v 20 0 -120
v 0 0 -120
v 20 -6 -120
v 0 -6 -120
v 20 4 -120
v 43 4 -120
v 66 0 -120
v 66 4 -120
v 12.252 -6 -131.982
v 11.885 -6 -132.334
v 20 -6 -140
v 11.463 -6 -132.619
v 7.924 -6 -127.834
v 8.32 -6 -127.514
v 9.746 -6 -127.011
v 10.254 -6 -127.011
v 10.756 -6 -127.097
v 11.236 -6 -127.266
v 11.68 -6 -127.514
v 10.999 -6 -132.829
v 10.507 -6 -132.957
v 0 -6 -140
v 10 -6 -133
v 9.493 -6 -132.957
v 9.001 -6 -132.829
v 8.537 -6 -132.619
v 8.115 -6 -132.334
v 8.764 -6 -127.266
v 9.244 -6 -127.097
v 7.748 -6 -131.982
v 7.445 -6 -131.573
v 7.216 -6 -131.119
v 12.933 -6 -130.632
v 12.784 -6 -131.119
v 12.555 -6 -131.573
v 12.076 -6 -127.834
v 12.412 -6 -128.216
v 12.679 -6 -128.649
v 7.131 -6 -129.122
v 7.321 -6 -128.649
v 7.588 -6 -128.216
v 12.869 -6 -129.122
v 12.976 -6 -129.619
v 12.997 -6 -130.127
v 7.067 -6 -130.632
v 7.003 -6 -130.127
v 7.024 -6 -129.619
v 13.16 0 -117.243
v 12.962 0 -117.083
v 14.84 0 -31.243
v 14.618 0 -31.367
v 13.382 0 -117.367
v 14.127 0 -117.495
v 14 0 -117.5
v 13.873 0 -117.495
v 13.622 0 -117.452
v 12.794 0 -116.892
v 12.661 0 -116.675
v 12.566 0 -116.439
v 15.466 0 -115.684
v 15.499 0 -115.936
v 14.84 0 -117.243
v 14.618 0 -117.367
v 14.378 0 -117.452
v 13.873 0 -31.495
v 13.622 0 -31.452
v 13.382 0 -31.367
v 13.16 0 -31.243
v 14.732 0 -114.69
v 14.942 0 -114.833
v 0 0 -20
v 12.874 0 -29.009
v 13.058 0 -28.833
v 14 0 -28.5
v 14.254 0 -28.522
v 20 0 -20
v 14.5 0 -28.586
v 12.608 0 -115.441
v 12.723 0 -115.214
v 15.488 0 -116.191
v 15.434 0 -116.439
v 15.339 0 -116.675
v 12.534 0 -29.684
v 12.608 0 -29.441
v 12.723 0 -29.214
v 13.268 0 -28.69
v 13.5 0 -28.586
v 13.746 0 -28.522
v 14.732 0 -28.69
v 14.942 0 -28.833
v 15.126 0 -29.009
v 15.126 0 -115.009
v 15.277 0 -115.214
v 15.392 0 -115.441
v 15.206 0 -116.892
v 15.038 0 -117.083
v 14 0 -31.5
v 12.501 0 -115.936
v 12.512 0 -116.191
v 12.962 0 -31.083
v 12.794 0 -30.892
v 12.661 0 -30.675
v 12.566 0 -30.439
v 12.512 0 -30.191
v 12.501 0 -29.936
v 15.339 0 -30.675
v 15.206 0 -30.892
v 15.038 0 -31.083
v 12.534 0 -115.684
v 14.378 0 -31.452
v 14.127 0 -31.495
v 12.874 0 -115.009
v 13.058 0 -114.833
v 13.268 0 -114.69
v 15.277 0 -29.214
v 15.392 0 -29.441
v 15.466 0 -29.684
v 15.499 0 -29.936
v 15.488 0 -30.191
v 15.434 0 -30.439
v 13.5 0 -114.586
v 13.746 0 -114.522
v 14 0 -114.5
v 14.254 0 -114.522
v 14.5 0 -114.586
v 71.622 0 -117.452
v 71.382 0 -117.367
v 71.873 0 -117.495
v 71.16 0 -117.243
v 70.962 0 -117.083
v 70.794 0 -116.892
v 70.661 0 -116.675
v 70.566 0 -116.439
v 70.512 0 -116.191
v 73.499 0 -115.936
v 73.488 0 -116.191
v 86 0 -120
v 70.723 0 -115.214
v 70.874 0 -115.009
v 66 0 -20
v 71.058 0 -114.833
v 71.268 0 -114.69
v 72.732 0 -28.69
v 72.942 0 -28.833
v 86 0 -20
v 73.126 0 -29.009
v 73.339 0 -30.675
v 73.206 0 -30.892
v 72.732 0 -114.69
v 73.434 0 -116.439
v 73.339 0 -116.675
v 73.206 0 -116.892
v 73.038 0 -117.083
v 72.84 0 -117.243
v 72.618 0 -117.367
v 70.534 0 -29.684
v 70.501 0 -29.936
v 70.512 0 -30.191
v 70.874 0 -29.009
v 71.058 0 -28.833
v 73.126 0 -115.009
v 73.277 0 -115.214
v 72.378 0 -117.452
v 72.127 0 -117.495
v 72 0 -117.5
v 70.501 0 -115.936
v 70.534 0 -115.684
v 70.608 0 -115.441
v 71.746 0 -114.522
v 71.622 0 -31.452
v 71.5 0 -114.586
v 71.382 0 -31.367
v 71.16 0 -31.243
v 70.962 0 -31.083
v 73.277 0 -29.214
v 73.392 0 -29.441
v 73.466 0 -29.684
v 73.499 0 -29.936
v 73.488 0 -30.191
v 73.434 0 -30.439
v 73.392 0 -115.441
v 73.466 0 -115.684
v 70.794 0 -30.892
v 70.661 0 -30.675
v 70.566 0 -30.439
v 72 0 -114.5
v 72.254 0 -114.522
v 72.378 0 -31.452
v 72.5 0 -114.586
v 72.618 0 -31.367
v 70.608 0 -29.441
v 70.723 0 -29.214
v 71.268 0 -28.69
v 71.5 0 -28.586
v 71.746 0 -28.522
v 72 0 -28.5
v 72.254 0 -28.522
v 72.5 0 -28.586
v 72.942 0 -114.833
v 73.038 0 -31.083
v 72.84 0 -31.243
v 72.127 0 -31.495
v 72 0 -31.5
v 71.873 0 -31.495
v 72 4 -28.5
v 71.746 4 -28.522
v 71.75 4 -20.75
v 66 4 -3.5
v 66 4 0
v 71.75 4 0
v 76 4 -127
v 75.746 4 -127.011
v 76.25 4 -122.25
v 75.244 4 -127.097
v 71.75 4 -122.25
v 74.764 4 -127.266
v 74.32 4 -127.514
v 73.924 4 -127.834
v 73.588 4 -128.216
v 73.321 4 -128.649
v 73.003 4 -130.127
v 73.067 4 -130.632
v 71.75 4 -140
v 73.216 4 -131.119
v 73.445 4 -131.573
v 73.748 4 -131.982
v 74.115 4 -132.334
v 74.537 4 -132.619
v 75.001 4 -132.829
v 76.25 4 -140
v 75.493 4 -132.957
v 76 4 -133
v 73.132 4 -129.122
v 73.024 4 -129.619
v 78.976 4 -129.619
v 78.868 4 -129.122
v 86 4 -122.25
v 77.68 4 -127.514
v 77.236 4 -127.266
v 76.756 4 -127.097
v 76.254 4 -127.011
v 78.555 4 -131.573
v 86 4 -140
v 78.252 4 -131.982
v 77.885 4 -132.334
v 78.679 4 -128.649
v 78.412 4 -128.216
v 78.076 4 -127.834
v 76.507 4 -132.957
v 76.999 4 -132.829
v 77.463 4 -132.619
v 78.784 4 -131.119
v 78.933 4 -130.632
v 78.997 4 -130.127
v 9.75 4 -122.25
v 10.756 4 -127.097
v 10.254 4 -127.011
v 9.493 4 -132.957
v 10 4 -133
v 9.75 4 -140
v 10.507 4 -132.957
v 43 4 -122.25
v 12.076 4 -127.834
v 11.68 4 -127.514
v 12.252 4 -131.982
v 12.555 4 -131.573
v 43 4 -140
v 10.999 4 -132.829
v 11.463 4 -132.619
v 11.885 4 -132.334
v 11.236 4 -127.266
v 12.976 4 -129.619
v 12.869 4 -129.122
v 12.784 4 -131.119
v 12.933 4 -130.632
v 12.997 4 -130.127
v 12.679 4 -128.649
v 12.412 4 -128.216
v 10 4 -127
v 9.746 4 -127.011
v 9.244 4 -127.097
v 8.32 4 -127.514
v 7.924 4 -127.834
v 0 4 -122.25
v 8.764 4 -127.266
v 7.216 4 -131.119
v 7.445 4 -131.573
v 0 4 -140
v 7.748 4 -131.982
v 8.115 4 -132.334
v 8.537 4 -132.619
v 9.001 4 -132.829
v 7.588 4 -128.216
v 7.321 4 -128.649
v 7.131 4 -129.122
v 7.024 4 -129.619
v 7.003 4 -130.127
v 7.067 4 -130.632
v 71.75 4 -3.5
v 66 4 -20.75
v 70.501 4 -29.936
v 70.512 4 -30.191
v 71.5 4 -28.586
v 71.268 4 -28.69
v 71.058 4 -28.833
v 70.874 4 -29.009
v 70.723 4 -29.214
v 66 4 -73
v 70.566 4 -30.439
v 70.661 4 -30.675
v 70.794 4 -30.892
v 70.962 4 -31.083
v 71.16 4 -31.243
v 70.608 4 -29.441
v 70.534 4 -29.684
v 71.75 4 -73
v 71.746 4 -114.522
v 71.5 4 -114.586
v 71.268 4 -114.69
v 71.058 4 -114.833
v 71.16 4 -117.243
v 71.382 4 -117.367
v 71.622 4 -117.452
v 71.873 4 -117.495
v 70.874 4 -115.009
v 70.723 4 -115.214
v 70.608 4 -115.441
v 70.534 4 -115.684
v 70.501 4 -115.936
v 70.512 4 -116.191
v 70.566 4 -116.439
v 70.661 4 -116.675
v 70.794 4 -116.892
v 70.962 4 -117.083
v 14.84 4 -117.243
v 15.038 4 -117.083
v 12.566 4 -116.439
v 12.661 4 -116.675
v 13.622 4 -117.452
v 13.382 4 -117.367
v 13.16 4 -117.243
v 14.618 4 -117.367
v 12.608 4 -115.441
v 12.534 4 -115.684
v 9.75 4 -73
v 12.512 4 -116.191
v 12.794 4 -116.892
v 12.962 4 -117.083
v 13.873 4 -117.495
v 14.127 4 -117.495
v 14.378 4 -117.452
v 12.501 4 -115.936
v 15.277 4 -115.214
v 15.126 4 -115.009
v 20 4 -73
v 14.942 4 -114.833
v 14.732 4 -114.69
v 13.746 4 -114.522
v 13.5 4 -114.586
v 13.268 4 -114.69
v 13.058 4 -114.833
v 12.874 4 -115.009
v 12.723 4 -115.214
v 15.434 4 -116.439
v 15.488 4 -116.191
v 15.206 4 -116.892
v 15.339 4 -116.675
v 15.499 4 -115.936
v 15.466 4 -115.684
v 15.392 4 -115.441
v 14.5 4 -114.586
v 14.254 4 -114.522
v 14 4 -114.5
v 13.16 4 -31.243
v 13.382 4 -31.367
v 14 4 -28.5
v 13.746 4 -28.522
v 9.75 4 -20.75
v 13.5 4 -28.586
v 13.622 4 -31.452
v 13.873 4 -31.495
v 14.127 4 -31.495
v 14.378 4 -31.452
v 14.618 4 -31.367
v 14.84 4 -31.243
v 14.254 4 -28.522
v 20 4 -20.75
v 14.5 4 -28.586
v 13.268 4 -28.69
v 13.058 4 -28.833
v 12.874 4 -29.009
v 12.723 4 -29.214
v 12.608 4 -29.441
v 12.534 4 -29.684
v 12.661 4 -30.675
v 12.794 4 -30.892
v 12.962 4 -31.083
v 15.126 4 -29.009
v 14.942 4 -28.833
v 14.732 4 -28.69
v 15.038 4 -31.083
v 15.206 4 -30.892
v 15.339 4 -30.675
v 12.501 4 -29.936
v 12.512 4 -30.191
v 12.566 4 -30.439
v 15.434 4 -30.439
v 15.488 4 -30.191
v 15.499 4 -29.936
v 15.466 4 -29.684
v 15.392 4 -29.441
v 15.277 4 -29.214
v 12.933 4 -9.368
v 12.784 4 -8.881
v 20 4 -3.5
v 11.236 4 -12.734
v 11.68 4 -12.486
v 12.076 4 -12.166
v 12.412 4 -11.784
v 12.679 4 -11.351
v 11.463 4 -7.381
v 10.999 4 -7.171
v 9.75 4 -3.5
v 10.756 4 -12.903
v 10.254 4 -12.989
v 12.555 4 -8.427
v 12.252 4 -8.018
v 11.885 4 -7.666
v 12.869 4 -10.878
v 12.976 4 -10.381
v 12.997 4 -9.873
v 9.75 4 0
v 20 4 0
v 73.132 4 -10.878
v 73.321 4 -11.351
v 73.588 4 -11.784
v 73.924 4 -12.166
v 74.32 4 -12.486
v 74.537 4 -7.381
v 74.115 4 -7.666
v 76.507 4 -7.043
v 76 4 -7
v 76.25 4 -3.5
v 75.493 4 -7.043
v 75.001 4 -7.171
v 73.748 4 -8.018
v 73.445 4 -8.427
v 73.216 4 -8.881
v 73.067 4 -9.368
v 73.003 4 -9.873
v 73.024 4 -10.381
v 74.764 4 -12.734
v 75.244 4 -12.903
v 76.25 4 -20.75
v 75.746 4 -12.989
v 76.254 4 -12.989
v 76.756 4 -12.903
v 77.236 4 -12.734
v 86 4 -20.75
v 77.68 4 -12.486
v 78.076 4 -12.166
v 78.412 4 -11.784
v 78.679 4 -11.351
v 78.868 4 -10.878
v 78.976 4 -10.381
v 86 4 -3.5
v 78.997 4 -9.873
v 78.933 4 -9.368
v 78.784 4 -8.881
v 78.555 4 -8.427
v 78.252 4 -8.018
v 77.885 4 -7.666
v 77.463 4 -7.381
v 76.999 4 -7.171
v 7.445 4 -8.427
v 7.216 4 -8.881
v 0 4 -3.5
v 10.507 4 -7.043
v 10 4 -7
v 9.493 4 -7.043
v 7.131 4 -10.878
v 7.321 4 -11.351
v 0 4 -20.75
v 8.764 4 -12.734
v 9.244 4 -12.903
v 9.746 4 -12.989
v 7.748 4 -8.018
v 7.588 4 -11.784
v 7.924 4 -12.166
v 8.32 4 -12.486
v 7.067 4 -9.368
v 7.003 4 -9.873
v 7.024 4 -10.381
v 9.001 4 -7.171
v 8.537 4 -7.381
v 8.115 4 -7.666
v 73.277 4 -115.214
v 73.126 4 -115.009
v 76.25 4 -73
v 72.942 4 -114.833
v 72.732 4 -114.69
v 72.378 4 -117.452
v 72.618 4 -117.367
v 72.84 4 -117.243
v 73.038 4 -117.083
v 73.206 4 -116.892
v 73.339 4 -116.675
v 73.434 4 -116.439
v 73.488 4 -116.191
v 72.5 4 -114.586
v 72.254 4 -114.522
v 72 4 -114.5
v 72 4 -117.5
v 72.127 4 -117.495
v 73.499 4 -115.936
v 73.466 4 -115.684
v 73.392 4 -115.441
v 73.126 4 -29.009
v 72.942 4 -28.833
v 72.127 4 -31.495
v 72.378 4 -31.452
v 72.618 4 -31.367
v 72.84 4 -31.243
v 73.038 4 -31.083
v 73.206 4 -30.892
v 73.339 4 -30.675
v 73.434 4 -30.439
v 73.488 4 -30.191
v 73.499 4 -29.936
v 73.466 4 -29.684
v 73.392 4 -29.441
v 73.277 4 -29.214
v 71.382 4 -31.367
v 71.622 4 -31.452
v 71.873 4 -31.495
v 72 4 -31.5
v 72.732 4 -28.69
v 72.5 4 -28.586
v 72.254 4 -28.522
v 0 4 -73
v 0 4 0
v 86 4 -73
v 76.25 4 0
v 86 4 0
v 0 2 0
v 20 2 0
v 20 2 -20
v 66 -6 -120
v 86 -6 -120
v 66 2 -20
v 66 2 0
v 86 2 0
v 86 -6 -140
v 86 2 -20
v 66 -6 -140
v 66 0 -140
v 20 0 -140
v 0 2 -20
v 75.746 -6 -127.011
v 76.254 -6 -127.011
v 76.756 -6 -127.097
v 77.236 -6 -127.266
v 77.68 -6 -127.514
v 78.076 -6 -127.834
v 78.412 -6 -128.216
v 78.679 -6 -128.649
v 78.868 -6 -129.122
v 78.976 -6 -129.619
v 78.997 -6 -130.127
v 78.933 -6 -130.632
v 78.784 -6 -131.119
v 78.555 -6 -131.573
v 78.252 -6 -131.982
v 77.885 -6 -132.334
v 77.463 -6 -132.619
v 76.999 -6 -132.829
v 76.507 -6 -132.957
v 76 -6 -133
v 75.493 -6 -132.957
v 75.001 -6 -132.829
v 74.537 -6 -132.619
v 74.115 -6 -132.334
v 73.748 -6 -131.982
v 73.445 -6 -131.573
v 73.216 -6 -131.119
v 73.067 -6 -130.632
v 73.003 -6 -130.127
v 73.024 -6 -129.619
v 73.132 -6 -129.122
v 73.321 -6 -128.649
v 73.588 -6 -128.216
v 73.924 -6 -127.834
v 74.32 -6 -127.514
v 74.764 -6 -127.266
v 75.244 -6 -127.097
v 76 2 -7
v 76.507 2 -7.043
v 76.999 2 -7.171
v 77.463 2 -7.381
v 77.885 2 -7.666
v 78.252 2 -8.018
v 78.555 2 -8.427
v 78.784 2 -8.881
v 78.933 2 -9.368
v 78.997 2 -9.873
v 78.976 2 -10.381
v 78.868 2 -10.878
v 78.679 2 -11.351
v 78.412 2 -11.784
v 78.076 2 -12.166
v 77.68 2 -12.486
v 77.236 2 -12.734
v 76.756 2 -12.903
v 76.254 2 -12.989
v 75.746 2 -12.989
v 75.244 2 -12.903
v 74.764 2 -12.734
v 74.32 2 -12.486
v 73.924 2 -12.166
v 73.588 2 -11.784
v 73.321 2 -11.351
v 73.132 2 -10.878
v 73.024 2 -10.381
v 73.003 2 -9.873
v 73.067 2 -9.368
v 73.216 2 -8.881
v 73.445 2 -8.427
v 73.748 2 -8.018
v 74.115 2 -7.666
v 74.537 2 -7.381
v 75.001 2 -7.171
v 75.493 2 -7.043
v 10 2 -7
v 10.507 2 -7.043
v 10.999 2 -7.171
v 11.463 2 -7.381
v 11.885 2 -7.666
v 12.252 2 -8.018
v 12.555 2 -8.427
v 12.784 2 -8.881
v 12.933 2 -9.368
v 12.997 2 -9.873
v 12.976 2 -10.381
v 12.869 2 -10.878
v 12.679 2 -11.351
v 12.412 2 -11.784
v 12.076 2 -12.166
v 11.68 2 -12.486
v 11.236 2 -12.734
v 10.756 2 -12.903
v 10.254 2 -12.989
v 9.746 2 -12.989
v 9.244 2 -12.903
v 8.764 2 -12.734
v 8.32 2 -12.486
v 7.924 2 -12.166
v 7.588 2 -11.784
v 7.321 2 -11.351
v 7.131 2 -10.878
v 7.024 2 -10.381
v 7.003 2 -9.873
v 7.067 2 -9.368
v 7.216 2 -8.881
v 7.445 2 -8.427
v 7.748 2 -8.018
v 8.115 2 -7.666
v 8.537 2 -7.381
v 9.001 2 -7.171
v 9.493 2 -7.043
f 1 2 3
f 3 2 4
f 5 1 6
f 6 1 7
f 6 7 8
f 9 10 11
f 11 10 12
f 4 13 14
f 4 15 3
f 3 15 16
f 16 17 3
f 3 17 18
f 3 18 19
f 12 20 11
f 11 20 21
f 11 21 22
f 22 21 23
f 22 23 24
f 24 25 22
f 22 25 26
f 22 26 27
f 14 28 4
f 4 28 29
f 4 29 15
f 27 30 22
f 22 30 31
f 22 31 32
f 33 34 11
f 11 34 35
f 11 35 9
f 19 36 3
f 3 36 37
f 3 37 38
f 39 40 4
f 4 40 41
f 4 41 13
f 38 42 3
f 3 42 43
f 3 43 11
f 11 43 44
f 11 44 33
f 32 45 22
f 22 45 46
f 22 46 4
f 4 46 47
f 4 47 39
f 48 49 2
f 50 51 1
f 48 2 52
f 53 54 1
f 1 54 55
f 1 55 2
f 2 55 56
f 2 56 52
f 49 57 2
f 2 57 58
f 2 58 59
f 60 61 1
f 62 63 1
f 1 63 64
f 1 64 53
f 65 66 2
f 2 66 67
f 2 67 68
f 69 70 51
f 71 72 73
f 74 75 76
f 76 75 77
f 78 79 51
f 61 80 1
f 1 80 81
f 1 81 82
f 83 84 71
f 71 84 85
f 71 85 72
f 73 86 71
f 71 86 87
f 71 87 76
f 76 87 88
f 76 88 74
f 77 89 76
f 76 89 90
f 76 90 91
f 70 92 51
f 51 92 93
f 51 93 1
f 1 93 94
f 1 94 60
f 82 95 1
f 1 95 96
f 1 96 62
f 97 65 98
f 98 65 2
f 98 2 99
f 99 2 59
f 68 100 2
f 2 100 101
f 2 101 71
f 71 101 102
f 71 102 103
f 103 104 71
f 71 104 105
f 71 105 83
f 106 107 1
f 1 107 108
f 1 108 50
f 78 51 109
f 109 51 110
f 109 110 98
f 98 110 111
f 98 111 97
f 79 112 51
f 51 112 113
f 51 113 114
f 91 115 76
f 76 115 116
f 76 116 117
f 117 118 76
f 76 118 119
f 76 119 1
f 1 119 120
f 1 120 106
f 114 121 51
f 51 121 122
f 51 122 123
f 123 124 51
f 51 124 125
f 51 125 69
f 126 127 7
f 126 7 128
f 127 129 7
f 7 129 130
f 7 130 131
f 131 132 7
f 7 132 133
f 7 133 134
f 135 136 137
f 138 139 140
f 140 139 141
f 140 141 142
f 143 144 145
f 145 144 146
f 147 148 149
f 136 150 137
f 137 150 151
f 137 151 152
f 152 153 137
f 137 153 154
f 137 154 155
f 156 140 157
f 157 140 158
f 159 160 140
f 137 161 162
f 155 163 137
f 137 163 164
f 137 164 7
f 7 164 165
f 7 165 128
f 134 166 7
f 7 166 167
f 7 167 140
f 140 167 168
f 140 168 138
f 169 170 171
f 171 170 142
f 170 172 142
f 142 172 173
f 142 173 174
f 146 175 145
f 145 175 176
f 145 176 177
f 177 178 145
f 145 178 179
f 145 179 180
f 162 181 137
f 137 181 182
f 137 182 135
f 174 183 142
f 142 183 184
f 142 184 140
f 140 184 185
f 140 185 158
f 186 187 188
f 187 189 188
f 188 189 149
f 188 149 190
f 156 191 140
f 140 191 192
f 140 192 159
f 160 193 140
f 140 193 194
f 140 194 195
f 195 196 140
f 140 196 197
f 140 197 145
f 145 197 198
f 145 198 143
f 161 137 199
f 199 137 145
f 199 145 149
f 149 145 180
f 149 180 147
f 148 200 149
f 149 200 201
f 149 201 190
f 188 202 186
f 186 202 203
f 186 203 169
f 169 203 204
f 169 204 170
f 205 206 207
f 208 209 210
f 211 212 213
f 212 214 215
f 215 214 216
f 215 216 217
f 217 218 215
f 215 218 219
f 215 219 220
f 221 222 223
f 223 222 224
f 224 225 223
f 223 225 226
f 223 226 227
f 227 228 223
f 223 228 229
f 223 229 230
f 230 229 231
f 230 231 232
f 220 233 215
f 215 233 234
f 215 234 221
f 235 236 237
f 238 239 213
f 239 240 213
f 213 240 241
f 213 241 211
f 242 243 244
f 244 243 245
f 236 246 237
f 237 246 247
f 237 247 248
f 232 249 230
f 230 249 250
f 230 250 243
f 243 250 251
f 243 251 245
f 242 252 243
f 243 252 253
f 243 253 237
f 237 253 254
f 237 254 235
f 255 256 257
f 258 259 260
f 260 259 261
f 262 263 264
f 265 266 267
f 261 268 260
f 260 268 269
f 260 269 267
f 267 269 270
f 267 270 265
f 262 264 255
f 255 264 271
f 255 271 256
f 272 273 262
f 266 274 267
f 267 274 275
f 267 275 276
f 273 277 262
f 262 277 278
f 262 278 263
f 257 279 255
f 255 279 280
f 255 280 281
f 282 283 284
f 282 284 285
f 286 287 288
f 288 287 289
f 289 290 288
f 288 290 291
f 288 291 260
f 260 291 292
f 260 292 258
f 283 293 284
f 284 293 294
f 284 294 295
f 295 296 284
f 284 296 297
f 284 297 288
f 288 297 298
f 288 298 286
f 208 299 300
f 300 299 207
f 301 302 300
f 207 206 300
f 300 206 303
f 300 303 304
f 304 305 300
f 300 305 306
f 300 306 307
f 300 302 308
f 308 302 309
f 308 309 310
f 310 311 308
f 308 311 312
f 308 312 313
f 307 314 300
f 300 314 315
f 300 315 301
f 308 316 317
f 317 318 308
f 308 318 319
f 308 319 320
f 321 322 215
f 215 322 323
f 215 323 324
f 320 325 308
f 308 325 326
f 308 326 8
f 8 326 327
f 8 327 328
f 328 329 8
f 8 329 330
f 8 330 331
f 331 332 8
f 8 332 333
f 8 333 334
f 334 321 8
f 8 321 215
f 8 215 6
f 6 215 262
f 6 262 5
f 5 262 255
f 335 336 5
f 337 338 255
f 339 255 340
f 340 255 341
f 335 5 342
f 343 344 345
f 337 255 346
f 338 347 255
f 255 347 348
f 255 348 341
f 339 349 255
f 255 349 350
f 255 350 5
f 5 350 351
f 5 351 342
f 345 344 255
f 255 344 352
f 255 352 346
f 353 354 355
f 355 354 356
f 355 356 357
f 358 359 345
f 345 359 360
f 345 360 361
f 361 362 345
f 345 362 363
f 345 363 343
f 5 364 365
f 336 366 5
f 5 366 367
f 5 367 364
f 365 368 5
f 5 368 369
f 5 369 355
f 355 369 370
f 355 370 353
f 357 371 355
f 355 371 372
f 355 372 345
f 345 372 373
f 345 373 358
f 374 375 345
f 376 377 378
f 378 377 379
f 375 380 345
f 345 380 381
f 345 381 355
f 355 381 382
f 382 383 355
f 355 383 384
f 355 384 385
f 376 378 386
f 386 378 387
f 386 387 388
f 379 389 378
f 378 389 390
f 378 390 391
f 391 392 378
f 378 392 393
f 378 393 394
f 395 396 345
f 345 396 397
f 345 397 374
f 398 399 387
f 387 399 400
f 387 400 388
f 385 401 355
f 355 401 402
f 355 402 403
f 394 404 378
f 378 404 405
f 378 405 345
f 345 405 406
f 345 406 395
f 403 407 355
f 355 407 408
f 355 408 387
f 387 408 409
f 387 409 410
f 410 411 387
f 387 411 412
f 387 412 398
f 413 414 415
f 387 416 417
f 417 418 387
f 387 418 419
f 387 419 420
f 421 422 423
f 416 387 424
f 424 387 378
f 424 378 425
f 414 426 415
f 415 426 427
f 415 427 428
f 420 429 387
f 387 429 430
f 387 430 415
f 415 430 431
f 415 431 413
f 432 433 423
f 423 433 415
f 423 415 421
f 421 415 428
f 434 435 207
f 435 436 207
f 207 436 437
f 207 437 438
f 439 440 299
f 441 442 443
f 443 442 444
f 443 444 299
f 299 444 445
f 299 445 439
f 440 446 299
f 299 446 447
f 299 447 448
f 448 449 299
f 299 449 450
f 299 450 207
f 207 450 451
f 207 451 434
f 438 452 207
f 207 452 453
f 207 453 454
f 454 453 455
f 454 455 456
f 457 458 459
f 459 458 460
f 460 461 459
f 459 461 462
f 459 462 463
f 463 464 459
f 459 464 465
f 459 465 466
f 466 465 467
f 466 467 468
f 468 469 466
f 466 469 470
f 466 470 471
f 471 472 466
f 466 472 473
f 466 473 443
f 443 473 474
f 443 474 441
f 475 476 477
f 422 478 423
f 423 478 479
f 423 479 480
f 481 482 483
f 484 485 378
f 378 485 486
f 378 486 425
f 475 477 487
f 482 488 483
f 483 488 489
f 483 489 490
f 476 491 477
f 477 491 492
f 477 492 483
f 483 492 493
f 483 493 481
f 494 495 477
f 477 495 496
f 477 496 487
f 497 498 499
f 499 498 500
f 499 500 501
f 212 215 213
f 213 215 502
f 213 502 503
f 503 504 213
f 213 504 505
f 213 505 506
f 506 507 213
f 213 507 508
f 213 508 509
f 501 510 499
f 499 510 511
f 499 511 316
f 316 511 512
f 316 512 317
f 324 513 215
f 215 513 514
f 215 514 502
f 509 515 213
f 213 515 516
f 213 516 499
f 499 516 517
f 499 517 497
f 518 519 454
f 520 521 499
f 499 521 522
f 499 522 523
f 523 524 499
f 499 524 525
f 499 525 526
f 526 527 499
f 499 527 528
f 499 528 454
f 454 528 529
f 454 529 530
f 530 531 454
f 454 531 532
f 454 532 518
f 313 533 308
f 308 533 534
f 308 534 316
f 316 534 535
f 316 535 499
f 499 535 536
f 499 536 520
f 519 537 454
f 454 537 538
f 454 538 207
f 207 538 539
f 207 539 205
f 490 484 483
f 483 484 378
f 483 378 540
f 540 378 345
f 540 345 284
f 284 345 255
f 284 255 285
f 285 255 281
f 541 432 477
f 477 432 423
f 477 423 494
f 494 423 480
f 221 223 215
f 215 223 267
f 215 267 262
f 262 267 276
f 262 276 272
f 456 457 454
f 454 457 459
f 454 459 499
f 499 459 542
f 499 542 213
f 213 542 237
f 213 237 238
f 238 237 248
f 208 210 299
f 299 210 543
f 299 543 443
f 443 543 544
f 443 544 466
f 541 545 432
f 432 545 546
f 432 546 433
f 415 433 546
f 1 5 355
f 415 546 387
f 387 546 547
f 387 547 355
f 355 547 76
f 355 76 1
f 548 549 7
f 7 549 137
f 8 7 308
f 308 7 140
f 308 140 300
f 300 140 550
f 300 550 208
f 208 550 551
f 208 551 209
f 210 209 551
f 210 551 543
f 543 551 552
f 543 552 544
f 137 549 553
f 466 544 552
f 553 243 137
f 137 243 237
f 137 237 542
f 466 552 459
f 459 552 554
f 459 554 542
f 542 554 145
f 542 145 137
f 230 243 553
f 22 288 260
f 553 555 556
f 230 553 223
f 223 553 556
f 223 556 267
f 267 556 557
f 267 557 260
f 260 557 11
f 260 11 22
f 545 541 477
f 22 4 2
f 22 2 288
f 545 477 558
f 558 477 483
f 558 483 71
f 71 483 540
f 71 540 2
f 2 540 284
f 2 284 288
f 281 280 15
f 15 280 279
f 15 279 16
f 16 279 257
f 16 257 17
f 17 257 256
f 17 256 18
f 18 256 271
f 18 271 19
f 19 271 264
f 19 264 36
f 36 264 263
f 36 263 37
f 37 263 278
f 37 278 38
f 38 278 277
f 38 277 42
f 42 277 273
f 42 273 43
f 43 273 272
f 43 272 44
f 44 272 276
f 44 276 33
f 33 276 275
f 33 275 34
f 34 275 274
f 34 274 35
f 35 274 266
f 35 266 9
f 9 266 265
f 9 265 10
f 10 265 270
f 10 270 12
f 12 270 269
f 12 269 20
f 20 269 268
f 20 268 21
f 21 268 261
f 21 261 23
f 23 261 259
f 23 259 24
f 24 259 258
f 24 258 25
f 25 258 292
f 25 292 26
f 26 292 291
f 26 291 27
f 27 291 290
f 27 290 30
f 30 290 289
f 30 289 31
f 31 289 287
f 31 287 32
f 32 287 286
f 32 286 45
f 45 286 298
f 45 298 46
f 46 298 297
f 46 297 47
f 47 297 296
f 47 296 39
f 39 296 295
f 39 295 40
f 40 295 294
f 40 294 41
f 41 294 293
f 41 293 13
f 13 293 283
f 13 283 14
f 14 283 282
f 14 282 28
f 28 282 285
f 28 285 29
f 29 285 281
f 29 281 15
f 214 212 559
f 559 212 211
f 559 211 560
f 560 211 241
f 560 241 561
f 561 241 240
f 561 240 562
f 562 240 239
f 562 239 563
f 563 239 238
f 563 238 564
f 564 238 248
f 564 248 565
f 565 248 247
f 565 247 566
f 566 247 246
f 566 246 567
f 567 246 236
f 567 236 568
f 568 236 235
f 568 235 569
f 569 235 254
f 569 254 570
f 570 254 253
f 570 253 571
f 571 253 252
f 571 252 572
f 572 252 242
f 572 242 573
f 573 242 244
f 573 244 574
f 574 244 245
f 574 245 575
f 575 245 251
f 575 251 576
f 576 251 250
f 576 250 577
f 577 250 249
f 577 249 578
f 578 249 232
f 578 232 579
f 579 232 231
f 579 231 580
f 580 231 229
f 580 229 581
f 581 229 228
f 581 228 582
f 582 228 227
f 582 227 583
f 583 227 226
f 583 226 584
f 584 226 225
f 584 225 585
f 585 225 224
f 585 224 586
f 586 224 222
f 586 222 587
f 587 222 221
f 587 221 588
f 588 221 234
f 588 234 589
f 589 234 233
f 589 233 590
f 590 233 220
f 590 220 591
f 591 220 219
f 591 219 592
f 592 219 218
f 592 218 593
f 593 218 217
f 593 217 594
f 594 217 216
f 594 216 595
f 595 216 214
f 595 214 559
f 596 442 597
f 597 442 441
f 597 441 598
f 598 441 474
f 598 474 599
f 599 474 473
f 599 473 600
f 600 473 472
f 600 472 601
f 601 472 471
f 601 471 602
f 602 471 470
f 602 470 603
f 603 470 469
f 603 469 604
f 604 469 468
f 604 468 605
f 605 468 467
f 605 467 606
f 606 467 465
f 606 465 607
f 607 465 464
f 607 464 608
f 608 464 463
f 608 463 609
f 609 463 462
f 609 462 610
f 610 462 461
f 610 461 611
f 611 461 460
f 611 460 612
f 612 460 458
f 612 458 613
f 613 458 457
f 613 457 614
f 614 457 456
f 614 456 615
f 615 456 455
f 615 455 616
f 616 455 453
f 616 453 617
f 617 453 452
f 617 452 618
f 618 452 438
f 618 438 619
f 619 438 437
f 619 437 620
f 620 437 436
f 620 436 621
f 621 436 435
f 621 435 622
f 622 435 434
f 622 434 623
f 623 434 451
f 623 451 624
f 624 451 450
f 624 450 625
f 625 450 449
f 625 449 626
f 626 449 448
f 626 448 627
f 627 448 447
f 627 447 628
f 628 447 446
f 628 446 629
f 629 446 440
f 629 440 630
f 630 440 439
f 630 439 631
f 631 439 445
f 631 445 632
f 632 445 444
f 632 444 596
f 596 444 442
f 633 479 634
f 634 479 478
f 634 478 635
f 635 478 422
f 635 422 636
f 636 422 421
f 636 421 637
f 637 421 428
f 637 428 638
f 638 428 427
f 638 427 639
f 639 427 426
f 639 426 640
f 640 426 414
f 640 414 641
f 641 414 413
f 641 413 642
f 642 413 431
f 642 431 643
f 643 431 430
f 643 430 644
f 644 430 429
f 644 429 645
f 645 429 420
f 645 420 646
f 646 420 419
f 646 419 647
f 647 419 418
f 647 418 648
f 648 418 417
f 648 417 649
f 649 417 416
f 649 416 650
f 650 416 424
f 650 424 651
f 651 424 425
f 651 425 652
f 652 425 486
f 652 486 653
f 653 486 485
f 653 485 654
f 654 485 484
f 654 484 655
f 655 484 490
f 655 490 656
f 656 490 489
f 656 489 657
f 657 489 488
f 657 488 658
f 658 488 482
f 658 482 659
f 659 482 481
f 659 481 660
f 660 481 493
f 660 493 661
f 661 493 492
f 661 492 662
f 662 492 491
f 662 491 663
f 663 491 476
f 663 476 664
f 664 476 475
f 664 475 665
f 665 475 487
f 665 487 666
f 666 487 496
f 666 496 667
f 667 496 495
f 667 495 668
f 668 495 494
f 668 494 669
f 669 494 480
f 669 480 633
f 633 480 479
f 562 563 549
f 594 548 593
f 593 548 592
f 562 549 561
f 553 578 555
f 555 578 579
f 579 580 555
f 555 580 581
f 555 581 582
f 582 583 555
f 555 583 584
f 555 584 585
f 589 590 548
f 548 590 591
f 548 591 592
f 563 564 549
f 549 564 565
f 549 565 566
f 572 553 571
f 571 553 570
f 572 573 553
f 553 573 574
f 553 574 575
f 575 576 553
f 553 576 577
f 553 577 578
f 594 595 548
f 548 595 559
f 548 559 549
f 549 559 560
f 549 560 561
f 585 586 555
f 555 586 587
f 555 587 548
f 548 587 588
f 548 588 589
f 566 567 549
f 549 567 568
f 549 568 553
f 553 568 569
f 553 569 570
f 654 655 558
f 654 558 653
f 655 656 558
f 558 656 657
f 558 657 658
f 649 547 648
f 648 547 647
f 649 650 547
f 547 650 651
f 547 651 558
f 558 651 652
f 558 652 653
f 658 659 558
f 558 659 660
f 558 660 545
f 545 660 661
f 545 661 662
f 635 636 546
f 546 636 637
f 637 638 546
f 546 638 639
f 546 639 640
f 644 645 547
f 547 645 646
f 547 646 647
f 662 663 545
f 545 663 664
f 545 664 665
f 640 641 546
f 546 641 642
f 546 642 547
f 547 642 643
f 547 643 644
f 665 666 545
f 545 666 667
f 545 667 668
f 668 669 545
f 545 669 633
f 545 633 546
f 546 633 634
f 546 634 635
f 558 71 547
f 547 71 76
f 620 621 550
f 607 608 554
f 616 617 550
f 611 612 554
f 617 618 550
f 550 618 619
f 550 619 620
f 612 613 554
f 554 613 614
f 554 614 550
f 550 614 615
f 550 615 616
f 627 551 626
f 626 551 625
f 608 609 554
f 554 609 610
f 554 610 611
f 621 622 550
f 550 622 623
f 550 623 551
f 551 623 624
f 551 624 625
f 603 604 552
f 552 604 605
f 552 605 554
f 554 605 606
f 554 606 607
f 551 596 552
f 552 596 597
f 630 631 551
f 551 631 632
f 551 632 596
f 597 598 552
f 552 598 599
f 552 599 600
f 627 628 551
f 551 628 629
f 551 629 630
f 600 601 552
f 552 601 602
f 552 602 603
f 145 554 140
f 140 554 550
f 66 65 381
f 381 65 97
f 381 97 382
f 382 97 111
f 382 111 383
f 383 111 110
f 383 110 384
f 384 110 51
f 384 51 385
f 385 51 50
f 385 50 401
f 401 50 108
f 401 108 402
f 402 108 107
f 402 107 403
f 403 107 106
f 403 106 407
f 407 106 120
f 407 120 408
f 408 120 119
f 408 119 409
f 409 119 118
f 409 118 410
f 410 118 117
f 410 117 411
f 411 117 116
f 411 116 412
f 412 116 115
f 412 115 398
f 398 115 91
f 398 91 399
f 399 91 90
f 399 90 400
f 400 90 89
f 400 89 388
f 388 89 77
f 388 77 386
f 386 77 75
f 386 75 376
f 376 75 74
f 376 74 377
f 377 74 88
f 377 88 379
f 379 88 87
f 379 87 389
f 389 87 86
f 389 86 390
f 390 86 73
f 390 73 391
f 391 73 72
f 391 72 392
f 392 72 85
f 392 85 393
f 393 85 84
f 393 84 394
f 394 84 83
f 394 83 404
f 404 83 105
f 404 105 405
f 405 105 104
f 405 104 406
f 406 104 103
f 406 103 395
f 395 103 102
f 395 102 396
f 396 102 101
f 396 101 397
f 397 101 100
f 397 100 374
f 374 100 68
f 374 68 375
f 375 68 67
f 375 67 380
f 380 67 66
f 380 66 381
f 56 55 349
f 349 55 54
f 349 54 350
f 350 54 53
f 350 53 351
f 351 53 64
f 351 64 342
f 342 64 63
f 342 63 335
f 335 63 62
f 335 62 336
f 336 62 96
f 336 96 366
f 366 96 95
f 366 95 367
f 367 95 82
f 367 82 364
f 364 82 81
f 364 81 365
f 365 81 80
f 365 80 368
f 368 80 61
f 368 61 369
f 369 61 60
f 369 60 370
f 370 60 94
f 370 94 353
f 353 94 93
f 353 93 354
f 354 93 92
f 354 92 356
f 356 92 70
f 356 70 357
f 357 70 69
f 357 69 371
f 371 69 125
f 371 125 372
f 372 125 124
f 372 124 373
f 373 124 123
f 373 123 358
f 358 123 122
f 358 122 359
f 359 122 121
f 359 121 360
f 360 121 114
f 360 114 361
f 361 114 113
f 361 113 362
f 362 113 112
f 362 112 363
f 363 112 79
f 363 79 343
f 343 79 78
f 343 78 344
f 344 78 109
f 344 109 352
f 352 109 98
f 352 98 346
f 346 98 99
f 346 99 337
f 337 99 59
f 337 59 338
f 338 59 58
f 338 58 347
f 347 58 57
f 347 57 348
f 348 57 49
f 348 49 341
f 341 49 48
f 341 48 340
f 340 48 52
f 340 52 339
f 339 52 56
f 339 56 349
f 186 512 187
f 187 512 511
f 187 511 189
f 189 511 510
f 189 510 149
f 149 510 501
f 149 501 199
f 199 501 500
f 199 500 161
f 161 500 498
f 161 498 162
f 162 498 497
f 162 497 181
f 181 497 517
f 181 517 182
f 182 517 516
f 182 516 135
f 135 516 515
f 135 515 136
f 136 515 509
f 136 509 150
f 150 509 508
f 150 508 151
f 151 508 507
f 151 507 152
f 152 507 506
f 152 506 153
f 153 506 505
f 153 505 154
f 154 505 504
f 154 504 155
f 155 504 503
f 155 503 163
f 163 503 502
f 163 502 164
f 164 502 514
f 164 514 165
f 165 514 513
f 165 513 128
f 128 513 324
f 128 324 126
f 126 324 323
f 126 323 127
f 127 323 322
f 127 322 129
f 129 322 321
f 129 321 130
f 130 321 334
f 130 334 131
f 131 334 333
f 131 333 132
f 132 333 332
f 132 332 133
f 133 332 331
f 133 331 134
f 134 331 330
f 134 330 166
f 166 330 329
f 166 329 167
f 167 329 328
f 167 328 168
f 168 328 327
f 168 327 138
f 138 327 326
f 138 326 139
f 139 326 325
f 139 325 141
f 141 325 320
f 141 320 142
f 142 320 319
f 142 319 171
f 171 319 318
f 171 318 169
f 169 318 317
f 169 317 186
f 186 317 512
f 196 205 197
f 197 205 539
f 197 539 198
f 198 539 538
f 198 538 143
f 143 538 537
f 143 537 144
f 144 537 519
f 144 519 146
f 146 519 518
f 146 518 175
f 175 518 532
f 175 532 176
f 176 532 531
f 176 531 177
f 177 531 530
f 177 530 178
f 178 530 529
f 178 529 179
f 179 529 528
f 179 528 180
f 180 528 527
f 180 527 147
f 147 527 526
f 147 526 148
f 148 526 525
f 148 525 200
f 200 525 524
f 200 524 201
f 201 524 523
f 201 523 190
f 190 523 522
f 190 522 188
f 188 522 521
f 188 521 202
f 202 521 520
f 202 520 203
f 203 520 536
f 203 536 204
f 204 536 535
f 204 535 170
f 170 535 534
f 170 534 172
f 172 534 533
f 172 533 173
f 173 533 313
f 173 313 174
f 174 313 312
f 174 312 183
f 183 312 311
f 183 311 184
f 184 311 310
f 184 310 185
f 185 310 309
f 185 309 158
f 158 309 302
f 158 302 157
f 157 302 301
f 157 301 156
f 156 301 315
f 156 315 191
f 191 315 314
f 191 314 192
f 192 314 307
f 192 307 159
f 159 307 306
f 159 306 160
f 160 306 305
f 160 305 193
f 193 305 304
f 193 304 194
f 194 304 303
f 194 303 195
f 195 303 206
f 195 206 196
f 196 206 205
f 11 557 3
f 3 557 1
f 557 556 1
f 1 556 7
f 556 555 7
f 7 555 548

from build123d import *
from build123d.topology import SkipClean

# Parameters (mm, degrees)
SKETCH1_R           = 3
BOSS_EXTRUDE1_DEPTH = 4
SKETCH2_R           = 3
CUT_EXTRUDE1_DEPTH  = 4
BOSS_EXTRUDE2_START = 6
SKETCH3_R           = 3
BOSS_EXTRUDE2_DEPTH = 6
SKETCH5_W           = 20
SKETCH5_H           = 2
CUT_EXTRUDE2_DEPTH  = 20
SKETCH6_R           = 1.5
CUT_EXTRUDE3_DEPTH  = 20
SKETCH7_W           = 46
SKETCH7_H           = 6
CUT_EXTRUDE4_DEPTH  = 20


with BuildPart() as part:
    # Sketch1 → Boss-Extrude1 (new body)
    with BuildSketch(Plane(origin=(0, 0, 0), x_dir=(1, 0, 0), z_dir=(0, 1, 0))):
        Polygon((0, 0), (0, 140), (86, 140), (86, 0), (66, 0), (66, 120), (20, 120), (20, 0), align=None)
        with Locations(Location((10, 130, 0), (0, 0, 270))):
            Circle(SKETCH1_R, mode=Mode.SUBTRACT)
        with Locations(Location((76, 130, 0), (0, 0, 270))):
            Circle(SKETCH1_R, mode=Mode.SUBTRACT)
    extrude(amount=BOSS_EXTRUDE1_DEPTH)

    # Sketch2 → Cut-Extrude1 (cut)
    with BuildSketch(Plane(origin=(0, 4, 0), x_dir=(1, 0, 0), z_dir=(0, 1, 0))):
        with Locations(Location((10, 10, 0), (0, 0, 270))):
            Circle(SKETCH2_R)
        with Locations(Location((76, 10, 0), (0, 0, 270))):
            Circle(SKETCH2_R)
    extrude(amount=-CUT_EXTRUDE1_DEPTH, mode=Mode.SUBTRACT)

    # Sketch3 → Boss-Extrude2 (add)
    with SkipClean():  # the faces are left unmerged after this step: merging them gives an invalid solid
        with BuildSketch(Plane.XZ.offset(BOSS_EXTRUDE2_START)):
            Polygon((0, -140), (86, -140), (86, -120), (66, -120), (20, -120), (0, -120), align=None)
            with Locations(Location((10, -130, 0), (0, 0, 270))):
                Circle(SKETCH3_R, mode=Mode.SUBTRACT)
            with Locations(Location((76, -130, 0), (0, 0, 270))):
                Circle(SKETCH3_R, mode=Mode.SUBTRACT)
        extrude(amount=-BOSS_EXTRUDE2_DEPTH)

    # Sketch5 → Cut-Extrude2 (cut)
    with SkipClean():  # the faces are left unmerged after this step: merging them gives an invalid solid
        with BuildSketch(Plane.XY):
            with Locations((10, 1)):
                Rectangle(SKETCH5_W, SKETCH5_H)
            with Locations((76, 1)):
                Rectangle(SKETCH5_W, SKETCH5_H)
        extrude(amount=-CUT_EXTRUDE2_DEPTH, mode=Mode.SUBTRACT)

    # Sketch6 → Cut-Extrude3 (cut)
    with SkipClean():  # the faces are left unmerged after this step: merging them gives an invalid solid
        with BuildSketch(Plane(origin=(0, 4, 0), x_dir=(1, 0, 0), z_dir=(0, 1, 0))):
            with Locations(Location((14, 30, 0), (0, 0, 270))):
                Circle(SKETCH6_R)
            with Locations(Location((14, 116, 0), (0, 0, 270))):
                Circle(SKETCH6_R)
            with Locations(Location((72, 116, 0), (0, 0, 90))):
                Circle(SKETCH6_R)
            with Locations(Location((72, 30, 0), (0, 0, 90))):
                Circle(SKETCH6_R)
        extrude(amount=-CUT_EXTRUDE3_DEPTH, mode=Mode.SUBTRACT)

    # Sketch7 → Cut-Extrude4 (cut)
    with SkipClean():  # the faces are left unmerged after this step: merging them gives an invalid solid
        with BuildSketch(Plane.XY.offset(-120)):
            with Locations((43, -3)):
                Rectangle(SKETCH7_W, SKETCH7_H)
        extrude(amount=-CUT_EXTRUDE4_DEPTH, mode=Mode.SUBTRACT)


solid = part.part
